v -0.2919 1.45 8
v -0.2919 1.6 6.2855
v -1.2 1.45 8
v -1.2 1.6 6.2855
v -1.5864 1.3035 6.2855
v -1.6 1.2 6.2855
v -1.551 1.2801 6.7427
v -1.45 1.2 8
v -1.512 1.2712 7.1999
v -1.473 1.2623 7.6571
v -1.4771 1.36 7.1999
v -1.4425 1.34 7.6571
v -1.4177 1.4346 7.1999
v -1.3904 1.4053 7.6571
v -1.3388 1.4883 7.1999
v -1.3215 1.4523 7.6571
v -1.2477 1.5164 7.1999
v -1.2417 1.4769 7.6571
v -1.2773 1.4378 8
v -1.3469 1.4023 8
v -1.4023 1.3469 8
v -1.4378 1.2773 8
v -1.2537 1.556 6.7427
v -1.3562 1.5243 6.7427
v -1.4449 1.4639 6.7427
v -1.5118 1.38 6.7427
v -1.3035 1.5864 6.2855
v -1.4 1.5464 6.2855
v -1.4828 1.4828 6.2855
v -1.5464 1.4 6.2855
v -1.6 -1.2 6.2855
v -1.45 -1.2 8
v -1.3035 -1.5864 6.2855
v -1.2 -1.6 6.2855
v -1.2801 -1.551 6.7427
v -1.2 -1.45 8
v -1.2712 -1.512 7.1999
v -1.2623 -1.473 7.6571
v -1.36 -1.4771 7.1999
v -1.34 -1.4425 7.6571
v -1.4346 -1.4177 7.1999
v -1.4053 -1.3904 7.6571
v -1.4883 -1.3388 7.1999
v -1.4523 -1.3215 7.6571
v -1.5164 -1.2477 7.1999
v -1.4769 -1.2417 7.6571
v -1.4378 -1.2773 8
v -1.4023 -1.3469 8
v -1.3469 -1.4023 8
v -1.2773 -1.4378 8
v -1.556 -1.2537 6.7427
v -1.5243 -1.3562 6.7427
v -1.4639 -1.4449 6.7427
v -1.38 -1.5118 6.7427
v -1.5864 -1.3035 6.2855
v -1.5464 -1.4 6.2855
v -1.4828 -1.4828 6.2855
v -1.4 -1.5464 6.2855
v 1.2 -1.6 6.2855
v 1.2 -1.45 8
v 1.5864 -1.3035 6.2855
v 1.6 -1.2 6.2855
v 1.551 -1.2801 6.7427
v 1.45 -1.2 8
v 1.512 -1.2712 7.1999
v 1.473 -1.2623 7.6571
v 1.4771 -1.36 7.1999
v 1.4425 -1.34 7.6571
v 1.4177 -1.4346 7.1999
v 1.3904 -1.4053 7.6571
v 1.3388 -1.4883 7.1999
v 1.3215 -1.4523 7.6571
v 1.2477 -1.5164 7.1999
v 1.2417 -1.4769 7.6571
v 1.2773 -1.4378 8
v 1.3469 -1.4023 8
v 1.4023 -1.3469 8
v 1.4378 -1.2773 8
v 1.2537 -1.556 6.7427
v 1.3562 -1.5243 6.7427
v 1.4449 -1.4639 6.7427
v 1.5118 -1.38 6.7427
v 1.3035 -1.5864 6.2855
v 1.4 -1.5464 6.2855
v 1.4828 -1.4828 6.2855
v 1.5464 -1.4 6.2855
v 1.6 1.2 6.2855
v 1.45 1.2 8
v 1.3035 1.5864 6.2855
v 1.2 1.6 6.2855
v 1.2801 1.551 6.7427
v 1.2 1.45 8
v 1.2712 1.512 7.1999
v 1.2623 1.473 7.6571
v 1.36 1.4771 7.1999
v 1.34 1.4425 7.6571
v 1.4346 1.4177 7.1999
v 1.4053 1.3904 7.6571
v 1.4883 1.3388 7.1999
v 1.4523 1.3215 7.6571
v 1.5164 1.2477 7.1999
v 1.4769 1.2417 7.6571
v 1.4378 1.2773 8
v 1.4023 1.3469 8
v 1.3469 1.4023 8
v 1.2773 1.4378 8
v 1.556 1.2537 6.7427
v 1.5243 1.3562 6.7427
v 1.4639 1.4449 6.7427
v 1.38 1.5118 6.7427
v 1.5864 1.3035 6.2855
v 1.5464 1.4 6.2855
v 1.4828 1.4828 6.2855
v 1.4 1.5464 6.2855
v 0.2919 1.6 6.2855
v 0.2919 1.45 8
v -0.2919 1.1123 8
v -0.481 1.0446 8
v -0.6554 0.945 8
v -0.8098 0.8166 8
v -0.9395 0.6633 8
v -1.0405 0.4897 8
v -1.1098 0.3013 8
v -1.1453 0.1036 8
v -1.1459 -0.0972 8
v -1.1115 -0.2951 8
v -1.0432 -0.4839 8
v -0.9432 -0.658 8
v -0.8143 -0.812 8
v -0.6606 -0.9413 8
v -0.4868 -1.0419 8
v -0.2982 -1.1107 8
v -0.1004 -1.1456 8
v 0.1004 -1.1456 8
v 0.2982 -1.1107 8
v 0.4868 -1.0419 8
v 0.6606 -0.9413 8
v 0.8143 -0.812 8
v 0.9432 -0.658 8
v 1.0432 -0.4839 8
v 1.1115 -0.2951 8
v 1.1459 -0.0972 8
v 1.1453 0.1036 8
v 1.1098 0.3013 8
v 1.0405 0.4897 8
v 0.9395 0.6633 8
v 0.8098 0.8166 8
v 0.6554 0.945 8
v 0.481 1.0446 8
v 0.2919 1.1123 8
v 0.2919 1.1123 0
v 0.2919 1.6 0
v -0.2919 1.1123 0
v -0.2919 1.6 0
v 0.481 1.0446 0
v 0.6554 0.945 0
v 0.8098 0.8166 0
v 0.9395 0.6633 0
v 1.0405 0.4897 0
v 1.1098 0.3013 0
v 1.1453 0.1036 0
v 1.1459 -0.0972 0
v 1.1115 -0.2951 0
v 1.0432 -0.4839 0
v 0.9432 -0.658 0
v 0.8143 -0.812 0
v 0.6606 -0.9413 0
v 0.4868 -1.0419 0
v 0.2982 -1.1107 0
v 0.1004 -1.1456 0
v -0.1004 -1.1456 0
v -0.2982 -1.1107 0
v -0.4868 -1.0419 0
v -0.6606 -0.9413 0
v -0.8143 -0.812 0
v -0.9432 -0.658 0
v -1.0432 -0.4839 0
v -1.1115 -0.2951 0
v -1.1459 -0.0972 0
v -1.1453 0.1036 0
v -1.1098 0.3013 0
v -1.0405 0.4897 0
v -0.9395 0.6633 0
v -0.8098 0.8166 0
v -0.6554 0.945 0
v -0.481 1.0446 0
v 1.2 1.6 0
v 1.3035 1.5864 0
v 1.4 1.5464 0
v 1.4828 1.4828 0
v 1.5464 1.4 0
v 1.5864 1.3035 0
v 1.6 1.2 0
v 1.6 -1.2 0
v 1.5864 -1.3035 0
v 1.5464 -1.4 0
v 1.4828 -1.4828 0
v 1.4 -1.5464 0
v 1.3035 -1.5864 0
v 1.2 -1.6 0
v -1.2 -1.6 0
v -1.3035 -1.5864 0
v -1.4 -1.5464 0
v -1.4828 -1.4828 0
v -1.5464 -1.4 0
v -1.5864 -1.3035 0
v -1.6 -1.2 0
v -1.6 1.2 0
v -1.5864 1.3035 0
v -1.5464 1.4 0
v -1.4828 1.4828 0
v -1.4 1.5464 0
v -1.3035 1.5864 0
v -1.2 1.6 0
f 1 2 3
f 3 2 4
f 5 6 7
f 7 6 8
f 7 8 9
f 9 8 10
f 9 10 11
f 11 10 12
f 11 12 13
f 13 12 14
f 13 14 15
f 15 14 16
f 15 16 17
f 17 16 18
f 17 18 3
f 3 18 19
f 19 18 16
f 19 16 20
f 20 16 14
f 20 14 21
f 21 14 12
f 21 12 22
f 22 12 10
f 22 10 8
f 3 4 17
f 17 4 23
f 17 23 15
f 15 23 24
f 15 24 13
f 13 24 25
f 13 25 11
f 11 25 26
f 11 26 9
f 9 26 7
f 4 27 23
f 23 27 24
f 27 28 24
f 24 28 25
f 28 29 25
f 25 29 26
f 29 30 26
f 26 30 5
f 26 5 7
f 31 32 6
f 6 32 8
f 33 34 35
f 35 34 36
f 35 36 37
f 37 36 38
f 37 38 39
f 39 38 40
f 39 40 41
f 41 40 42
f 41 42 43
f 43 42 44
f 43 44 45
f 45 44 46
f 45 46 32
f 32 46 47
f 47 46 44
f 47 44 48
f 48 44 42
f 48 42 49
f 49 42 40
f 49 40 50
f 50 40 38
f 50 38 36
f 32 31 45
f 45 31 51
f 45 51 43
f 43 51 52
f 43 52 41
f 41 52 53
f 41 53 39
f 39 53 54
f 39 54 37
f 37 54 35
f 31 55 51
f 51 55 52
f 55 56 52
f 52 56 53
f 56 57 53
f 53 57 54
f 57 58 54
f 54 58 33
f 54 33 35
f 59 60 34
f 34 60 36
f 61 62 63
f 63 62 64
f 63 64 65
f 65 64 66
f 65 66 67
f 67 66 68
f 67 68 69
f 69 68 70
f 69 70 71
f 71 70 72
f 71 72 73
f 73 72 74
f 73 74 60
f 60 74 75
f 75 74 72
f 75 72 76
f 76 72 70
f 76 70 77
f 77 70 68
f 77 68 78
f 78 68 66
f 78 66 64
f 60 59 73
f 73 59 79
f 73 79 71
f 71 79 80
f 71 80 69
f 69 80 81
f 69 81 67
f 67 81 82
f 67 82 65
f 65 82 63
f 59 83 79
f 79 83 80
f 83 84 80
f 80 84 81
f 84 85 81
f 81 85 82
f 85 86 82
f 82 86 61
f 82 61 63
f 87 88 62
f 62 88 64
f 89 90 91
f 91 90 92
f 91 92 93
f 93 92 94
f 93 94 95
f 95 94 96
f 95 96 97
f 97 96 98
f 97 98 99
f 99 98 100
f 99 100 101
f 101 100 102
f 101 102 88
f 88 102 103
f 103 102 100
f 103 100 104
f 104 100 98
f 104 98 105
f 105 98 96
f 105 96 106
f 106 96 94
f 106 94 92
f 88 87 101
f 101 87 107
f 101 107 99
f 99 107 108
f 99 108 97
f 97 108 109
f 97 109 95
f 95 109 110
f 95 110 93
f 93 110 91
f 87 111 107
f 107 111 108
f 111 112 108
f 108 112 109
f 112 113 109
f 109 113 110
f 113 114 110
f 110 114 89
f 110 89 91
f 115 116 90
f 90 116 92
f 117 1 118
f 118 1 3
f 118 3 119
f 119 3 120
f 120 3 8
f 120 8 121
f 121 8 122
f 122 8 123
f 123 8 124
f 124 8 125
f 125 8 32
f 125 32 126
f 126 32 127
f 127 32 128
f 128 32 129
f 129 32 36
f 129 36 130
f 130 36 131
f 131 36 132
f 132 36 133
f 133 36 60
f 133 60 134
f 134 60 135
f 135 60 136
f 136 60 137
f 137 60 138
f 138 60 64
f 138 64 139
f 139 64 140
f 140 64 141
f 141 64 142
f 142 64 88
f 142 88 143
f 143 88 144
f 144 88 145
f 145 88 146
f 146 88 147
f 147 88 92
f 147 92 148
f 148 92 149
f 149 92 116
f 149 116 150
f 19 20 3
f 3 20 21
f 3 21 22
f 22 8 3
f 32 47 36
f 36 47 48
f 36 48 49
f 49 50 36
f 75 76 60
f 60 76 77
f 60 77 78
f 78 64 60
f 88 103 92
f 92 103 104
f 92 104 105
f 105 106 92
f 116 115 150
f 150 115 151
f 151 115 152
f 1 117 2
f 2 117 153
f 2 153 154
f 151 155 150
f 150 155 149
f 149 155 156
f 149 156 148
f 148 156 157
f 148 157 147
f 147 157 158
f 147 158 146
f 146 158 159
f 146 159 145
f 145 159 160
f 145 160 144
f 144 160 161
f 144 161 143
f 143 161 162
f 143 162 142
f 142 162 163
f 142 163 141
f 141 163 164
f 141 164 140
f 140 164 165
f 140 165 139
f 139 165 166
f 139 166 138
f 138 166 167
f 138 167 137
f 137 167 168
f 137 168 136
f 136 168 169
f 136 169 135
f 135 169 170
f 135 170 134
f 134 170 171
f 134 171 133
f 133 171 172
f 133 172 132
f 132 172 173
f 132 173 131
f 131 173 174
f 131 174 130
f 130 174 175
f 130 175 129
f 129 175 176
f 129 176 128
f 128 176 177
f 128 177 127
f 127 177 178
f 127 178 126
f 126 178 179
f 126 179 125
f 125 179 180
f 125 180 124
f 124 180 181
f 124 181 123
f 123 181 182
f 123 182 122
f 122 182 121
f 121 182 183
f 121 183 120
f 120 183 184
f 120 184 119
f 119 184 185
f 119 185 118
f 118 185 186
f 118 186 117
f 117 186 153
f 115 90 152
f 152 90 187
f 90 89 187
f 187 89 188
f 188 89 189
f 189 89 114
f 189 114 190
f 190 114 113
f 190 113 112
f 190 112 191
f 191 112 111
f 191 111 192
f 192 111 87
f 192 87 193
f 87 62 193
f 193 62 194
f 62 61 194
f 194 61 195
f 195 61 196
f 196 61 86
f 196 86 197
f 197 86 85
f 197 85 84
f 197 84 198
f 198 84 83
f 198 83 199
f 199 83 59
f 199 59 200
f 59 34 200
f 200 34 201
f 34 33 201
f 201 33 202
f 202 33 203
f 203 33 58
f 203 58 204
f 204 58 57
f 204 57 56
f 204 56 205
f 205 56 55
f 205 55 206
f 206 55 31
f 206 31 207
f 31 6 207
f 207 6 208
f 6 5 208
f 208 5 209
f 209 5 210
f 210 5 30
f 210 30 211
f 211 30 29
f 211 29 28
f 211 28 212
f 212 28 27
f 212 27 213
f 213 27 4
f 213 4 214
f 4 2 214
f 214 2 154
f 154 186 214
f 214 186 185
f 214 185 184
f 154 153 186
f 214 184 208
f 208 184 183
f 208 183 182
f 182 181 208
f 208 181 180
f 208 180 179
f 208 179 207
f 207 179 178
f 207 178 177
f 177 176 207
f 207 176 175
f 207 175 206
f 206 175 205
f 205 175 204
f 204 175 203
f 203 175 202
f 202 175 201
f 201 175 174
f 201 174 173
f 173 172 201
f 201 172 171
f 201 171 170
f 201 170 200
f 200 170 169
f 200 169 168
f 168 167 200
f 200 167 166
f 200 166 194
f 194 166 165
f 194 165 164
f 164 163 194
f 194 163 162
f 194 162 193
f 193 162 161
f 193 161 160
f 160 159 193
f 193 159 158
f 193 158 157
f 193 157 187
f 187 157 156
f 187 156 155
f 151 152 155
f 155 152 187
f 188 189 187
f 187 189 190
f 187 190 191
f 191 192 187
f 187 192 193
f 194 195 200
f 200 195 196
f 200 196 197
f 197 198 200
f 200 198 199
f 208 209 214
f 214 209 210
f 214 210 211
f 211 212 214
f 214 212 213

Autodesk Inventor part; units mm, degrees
ref_plane "YZ Plane" through (0, 0, 0) normal (1, 0, 0) x (0, 1, 0)
ref_plane "XZ Plane" through (0, 0, 0) normal (0, 1, 0) x (-1, 0, 0)
ref_plane "XY Plane" through (0, 0, 0) normal (0, 0, 1) x (1, 0, 0)
sketch "Sketch1" plane through (0, 0, 0) normal (0, 0, 1) x (1, 0, 0)
  line L0 (-1.2, 1.6) -> (-0.2919, 1.6)
  line L1 (1.6, 1.2) -> (1.6, -1.2)
  line L2 (1.2, -1.6) -> (-1.2, -1.6)
  line L3 (-1.6, -1.2) -> (-1.6, 1.2)
  line L4 (0, -2.356) -> (0, 2.356) projected
  line L5 (-2.356, 0) -> (2.356, 0) projected
  arc A0 (-0.2919, 1.1123) -> (0.2919, 1.1123) centre (0, 0) ccw
  line L6 (0.2919, 1.6) -> (0.2919, 1.1123)
  line L7 (0.2919, 1.6) -> (1.2, 1.6)
  line L8 (-0.2919, 1.1123) -> (-0.2919, 1.6)
  arc A1 (1.6, 1.2) -> (1.2, 1.6) centre (1.2, 1.2) ccw
  arc A2 (1.2, -1.6) -> (1.6, -1.2) centre (1.2, -1.2) ccw
  arc A3 (-1.6, -1.2) -> (-1.2, -1.6) centre (-1.2, -1.2) ccw
  arc A4 (-1.2, 1.6) -> (-1.6, 1.2) centre (-1.2, 1.2) ccw
  dimension "d0" = 1.6
  dimension "d2" = 2.3
  dimension "d6" = 0.4
extrude "Extrusion2" add sketch "Sketch1" along normal blind 8 contours L0 L8 A0 L5 L3 A4 | L5 A0 L4 L2 A3 L3 | A0 L5 L1 A2 L2 L4 | A0 L6 L7 A1 L1 L5
chamfer "Chamfer1" distance 0.15 angle 85 9 edges at (1.6, 0, 8) (1.4828, 1.4828, 8) (0.746, 1.6, 8) (1.4828, -1.4828, 8) (0, -1.6, 8) (-1.4828, -1.4828, 8) (-1.6, 0, 8) (-1.4828, 1.4828, 8) (-0.746, 1.6, 8) measured on face at (-1.4476, 0.0429, 8)
equation "\"d0\" = d1"
equation "\"d1\" = 1.6"
properties part number "hjul-motor overgang"
